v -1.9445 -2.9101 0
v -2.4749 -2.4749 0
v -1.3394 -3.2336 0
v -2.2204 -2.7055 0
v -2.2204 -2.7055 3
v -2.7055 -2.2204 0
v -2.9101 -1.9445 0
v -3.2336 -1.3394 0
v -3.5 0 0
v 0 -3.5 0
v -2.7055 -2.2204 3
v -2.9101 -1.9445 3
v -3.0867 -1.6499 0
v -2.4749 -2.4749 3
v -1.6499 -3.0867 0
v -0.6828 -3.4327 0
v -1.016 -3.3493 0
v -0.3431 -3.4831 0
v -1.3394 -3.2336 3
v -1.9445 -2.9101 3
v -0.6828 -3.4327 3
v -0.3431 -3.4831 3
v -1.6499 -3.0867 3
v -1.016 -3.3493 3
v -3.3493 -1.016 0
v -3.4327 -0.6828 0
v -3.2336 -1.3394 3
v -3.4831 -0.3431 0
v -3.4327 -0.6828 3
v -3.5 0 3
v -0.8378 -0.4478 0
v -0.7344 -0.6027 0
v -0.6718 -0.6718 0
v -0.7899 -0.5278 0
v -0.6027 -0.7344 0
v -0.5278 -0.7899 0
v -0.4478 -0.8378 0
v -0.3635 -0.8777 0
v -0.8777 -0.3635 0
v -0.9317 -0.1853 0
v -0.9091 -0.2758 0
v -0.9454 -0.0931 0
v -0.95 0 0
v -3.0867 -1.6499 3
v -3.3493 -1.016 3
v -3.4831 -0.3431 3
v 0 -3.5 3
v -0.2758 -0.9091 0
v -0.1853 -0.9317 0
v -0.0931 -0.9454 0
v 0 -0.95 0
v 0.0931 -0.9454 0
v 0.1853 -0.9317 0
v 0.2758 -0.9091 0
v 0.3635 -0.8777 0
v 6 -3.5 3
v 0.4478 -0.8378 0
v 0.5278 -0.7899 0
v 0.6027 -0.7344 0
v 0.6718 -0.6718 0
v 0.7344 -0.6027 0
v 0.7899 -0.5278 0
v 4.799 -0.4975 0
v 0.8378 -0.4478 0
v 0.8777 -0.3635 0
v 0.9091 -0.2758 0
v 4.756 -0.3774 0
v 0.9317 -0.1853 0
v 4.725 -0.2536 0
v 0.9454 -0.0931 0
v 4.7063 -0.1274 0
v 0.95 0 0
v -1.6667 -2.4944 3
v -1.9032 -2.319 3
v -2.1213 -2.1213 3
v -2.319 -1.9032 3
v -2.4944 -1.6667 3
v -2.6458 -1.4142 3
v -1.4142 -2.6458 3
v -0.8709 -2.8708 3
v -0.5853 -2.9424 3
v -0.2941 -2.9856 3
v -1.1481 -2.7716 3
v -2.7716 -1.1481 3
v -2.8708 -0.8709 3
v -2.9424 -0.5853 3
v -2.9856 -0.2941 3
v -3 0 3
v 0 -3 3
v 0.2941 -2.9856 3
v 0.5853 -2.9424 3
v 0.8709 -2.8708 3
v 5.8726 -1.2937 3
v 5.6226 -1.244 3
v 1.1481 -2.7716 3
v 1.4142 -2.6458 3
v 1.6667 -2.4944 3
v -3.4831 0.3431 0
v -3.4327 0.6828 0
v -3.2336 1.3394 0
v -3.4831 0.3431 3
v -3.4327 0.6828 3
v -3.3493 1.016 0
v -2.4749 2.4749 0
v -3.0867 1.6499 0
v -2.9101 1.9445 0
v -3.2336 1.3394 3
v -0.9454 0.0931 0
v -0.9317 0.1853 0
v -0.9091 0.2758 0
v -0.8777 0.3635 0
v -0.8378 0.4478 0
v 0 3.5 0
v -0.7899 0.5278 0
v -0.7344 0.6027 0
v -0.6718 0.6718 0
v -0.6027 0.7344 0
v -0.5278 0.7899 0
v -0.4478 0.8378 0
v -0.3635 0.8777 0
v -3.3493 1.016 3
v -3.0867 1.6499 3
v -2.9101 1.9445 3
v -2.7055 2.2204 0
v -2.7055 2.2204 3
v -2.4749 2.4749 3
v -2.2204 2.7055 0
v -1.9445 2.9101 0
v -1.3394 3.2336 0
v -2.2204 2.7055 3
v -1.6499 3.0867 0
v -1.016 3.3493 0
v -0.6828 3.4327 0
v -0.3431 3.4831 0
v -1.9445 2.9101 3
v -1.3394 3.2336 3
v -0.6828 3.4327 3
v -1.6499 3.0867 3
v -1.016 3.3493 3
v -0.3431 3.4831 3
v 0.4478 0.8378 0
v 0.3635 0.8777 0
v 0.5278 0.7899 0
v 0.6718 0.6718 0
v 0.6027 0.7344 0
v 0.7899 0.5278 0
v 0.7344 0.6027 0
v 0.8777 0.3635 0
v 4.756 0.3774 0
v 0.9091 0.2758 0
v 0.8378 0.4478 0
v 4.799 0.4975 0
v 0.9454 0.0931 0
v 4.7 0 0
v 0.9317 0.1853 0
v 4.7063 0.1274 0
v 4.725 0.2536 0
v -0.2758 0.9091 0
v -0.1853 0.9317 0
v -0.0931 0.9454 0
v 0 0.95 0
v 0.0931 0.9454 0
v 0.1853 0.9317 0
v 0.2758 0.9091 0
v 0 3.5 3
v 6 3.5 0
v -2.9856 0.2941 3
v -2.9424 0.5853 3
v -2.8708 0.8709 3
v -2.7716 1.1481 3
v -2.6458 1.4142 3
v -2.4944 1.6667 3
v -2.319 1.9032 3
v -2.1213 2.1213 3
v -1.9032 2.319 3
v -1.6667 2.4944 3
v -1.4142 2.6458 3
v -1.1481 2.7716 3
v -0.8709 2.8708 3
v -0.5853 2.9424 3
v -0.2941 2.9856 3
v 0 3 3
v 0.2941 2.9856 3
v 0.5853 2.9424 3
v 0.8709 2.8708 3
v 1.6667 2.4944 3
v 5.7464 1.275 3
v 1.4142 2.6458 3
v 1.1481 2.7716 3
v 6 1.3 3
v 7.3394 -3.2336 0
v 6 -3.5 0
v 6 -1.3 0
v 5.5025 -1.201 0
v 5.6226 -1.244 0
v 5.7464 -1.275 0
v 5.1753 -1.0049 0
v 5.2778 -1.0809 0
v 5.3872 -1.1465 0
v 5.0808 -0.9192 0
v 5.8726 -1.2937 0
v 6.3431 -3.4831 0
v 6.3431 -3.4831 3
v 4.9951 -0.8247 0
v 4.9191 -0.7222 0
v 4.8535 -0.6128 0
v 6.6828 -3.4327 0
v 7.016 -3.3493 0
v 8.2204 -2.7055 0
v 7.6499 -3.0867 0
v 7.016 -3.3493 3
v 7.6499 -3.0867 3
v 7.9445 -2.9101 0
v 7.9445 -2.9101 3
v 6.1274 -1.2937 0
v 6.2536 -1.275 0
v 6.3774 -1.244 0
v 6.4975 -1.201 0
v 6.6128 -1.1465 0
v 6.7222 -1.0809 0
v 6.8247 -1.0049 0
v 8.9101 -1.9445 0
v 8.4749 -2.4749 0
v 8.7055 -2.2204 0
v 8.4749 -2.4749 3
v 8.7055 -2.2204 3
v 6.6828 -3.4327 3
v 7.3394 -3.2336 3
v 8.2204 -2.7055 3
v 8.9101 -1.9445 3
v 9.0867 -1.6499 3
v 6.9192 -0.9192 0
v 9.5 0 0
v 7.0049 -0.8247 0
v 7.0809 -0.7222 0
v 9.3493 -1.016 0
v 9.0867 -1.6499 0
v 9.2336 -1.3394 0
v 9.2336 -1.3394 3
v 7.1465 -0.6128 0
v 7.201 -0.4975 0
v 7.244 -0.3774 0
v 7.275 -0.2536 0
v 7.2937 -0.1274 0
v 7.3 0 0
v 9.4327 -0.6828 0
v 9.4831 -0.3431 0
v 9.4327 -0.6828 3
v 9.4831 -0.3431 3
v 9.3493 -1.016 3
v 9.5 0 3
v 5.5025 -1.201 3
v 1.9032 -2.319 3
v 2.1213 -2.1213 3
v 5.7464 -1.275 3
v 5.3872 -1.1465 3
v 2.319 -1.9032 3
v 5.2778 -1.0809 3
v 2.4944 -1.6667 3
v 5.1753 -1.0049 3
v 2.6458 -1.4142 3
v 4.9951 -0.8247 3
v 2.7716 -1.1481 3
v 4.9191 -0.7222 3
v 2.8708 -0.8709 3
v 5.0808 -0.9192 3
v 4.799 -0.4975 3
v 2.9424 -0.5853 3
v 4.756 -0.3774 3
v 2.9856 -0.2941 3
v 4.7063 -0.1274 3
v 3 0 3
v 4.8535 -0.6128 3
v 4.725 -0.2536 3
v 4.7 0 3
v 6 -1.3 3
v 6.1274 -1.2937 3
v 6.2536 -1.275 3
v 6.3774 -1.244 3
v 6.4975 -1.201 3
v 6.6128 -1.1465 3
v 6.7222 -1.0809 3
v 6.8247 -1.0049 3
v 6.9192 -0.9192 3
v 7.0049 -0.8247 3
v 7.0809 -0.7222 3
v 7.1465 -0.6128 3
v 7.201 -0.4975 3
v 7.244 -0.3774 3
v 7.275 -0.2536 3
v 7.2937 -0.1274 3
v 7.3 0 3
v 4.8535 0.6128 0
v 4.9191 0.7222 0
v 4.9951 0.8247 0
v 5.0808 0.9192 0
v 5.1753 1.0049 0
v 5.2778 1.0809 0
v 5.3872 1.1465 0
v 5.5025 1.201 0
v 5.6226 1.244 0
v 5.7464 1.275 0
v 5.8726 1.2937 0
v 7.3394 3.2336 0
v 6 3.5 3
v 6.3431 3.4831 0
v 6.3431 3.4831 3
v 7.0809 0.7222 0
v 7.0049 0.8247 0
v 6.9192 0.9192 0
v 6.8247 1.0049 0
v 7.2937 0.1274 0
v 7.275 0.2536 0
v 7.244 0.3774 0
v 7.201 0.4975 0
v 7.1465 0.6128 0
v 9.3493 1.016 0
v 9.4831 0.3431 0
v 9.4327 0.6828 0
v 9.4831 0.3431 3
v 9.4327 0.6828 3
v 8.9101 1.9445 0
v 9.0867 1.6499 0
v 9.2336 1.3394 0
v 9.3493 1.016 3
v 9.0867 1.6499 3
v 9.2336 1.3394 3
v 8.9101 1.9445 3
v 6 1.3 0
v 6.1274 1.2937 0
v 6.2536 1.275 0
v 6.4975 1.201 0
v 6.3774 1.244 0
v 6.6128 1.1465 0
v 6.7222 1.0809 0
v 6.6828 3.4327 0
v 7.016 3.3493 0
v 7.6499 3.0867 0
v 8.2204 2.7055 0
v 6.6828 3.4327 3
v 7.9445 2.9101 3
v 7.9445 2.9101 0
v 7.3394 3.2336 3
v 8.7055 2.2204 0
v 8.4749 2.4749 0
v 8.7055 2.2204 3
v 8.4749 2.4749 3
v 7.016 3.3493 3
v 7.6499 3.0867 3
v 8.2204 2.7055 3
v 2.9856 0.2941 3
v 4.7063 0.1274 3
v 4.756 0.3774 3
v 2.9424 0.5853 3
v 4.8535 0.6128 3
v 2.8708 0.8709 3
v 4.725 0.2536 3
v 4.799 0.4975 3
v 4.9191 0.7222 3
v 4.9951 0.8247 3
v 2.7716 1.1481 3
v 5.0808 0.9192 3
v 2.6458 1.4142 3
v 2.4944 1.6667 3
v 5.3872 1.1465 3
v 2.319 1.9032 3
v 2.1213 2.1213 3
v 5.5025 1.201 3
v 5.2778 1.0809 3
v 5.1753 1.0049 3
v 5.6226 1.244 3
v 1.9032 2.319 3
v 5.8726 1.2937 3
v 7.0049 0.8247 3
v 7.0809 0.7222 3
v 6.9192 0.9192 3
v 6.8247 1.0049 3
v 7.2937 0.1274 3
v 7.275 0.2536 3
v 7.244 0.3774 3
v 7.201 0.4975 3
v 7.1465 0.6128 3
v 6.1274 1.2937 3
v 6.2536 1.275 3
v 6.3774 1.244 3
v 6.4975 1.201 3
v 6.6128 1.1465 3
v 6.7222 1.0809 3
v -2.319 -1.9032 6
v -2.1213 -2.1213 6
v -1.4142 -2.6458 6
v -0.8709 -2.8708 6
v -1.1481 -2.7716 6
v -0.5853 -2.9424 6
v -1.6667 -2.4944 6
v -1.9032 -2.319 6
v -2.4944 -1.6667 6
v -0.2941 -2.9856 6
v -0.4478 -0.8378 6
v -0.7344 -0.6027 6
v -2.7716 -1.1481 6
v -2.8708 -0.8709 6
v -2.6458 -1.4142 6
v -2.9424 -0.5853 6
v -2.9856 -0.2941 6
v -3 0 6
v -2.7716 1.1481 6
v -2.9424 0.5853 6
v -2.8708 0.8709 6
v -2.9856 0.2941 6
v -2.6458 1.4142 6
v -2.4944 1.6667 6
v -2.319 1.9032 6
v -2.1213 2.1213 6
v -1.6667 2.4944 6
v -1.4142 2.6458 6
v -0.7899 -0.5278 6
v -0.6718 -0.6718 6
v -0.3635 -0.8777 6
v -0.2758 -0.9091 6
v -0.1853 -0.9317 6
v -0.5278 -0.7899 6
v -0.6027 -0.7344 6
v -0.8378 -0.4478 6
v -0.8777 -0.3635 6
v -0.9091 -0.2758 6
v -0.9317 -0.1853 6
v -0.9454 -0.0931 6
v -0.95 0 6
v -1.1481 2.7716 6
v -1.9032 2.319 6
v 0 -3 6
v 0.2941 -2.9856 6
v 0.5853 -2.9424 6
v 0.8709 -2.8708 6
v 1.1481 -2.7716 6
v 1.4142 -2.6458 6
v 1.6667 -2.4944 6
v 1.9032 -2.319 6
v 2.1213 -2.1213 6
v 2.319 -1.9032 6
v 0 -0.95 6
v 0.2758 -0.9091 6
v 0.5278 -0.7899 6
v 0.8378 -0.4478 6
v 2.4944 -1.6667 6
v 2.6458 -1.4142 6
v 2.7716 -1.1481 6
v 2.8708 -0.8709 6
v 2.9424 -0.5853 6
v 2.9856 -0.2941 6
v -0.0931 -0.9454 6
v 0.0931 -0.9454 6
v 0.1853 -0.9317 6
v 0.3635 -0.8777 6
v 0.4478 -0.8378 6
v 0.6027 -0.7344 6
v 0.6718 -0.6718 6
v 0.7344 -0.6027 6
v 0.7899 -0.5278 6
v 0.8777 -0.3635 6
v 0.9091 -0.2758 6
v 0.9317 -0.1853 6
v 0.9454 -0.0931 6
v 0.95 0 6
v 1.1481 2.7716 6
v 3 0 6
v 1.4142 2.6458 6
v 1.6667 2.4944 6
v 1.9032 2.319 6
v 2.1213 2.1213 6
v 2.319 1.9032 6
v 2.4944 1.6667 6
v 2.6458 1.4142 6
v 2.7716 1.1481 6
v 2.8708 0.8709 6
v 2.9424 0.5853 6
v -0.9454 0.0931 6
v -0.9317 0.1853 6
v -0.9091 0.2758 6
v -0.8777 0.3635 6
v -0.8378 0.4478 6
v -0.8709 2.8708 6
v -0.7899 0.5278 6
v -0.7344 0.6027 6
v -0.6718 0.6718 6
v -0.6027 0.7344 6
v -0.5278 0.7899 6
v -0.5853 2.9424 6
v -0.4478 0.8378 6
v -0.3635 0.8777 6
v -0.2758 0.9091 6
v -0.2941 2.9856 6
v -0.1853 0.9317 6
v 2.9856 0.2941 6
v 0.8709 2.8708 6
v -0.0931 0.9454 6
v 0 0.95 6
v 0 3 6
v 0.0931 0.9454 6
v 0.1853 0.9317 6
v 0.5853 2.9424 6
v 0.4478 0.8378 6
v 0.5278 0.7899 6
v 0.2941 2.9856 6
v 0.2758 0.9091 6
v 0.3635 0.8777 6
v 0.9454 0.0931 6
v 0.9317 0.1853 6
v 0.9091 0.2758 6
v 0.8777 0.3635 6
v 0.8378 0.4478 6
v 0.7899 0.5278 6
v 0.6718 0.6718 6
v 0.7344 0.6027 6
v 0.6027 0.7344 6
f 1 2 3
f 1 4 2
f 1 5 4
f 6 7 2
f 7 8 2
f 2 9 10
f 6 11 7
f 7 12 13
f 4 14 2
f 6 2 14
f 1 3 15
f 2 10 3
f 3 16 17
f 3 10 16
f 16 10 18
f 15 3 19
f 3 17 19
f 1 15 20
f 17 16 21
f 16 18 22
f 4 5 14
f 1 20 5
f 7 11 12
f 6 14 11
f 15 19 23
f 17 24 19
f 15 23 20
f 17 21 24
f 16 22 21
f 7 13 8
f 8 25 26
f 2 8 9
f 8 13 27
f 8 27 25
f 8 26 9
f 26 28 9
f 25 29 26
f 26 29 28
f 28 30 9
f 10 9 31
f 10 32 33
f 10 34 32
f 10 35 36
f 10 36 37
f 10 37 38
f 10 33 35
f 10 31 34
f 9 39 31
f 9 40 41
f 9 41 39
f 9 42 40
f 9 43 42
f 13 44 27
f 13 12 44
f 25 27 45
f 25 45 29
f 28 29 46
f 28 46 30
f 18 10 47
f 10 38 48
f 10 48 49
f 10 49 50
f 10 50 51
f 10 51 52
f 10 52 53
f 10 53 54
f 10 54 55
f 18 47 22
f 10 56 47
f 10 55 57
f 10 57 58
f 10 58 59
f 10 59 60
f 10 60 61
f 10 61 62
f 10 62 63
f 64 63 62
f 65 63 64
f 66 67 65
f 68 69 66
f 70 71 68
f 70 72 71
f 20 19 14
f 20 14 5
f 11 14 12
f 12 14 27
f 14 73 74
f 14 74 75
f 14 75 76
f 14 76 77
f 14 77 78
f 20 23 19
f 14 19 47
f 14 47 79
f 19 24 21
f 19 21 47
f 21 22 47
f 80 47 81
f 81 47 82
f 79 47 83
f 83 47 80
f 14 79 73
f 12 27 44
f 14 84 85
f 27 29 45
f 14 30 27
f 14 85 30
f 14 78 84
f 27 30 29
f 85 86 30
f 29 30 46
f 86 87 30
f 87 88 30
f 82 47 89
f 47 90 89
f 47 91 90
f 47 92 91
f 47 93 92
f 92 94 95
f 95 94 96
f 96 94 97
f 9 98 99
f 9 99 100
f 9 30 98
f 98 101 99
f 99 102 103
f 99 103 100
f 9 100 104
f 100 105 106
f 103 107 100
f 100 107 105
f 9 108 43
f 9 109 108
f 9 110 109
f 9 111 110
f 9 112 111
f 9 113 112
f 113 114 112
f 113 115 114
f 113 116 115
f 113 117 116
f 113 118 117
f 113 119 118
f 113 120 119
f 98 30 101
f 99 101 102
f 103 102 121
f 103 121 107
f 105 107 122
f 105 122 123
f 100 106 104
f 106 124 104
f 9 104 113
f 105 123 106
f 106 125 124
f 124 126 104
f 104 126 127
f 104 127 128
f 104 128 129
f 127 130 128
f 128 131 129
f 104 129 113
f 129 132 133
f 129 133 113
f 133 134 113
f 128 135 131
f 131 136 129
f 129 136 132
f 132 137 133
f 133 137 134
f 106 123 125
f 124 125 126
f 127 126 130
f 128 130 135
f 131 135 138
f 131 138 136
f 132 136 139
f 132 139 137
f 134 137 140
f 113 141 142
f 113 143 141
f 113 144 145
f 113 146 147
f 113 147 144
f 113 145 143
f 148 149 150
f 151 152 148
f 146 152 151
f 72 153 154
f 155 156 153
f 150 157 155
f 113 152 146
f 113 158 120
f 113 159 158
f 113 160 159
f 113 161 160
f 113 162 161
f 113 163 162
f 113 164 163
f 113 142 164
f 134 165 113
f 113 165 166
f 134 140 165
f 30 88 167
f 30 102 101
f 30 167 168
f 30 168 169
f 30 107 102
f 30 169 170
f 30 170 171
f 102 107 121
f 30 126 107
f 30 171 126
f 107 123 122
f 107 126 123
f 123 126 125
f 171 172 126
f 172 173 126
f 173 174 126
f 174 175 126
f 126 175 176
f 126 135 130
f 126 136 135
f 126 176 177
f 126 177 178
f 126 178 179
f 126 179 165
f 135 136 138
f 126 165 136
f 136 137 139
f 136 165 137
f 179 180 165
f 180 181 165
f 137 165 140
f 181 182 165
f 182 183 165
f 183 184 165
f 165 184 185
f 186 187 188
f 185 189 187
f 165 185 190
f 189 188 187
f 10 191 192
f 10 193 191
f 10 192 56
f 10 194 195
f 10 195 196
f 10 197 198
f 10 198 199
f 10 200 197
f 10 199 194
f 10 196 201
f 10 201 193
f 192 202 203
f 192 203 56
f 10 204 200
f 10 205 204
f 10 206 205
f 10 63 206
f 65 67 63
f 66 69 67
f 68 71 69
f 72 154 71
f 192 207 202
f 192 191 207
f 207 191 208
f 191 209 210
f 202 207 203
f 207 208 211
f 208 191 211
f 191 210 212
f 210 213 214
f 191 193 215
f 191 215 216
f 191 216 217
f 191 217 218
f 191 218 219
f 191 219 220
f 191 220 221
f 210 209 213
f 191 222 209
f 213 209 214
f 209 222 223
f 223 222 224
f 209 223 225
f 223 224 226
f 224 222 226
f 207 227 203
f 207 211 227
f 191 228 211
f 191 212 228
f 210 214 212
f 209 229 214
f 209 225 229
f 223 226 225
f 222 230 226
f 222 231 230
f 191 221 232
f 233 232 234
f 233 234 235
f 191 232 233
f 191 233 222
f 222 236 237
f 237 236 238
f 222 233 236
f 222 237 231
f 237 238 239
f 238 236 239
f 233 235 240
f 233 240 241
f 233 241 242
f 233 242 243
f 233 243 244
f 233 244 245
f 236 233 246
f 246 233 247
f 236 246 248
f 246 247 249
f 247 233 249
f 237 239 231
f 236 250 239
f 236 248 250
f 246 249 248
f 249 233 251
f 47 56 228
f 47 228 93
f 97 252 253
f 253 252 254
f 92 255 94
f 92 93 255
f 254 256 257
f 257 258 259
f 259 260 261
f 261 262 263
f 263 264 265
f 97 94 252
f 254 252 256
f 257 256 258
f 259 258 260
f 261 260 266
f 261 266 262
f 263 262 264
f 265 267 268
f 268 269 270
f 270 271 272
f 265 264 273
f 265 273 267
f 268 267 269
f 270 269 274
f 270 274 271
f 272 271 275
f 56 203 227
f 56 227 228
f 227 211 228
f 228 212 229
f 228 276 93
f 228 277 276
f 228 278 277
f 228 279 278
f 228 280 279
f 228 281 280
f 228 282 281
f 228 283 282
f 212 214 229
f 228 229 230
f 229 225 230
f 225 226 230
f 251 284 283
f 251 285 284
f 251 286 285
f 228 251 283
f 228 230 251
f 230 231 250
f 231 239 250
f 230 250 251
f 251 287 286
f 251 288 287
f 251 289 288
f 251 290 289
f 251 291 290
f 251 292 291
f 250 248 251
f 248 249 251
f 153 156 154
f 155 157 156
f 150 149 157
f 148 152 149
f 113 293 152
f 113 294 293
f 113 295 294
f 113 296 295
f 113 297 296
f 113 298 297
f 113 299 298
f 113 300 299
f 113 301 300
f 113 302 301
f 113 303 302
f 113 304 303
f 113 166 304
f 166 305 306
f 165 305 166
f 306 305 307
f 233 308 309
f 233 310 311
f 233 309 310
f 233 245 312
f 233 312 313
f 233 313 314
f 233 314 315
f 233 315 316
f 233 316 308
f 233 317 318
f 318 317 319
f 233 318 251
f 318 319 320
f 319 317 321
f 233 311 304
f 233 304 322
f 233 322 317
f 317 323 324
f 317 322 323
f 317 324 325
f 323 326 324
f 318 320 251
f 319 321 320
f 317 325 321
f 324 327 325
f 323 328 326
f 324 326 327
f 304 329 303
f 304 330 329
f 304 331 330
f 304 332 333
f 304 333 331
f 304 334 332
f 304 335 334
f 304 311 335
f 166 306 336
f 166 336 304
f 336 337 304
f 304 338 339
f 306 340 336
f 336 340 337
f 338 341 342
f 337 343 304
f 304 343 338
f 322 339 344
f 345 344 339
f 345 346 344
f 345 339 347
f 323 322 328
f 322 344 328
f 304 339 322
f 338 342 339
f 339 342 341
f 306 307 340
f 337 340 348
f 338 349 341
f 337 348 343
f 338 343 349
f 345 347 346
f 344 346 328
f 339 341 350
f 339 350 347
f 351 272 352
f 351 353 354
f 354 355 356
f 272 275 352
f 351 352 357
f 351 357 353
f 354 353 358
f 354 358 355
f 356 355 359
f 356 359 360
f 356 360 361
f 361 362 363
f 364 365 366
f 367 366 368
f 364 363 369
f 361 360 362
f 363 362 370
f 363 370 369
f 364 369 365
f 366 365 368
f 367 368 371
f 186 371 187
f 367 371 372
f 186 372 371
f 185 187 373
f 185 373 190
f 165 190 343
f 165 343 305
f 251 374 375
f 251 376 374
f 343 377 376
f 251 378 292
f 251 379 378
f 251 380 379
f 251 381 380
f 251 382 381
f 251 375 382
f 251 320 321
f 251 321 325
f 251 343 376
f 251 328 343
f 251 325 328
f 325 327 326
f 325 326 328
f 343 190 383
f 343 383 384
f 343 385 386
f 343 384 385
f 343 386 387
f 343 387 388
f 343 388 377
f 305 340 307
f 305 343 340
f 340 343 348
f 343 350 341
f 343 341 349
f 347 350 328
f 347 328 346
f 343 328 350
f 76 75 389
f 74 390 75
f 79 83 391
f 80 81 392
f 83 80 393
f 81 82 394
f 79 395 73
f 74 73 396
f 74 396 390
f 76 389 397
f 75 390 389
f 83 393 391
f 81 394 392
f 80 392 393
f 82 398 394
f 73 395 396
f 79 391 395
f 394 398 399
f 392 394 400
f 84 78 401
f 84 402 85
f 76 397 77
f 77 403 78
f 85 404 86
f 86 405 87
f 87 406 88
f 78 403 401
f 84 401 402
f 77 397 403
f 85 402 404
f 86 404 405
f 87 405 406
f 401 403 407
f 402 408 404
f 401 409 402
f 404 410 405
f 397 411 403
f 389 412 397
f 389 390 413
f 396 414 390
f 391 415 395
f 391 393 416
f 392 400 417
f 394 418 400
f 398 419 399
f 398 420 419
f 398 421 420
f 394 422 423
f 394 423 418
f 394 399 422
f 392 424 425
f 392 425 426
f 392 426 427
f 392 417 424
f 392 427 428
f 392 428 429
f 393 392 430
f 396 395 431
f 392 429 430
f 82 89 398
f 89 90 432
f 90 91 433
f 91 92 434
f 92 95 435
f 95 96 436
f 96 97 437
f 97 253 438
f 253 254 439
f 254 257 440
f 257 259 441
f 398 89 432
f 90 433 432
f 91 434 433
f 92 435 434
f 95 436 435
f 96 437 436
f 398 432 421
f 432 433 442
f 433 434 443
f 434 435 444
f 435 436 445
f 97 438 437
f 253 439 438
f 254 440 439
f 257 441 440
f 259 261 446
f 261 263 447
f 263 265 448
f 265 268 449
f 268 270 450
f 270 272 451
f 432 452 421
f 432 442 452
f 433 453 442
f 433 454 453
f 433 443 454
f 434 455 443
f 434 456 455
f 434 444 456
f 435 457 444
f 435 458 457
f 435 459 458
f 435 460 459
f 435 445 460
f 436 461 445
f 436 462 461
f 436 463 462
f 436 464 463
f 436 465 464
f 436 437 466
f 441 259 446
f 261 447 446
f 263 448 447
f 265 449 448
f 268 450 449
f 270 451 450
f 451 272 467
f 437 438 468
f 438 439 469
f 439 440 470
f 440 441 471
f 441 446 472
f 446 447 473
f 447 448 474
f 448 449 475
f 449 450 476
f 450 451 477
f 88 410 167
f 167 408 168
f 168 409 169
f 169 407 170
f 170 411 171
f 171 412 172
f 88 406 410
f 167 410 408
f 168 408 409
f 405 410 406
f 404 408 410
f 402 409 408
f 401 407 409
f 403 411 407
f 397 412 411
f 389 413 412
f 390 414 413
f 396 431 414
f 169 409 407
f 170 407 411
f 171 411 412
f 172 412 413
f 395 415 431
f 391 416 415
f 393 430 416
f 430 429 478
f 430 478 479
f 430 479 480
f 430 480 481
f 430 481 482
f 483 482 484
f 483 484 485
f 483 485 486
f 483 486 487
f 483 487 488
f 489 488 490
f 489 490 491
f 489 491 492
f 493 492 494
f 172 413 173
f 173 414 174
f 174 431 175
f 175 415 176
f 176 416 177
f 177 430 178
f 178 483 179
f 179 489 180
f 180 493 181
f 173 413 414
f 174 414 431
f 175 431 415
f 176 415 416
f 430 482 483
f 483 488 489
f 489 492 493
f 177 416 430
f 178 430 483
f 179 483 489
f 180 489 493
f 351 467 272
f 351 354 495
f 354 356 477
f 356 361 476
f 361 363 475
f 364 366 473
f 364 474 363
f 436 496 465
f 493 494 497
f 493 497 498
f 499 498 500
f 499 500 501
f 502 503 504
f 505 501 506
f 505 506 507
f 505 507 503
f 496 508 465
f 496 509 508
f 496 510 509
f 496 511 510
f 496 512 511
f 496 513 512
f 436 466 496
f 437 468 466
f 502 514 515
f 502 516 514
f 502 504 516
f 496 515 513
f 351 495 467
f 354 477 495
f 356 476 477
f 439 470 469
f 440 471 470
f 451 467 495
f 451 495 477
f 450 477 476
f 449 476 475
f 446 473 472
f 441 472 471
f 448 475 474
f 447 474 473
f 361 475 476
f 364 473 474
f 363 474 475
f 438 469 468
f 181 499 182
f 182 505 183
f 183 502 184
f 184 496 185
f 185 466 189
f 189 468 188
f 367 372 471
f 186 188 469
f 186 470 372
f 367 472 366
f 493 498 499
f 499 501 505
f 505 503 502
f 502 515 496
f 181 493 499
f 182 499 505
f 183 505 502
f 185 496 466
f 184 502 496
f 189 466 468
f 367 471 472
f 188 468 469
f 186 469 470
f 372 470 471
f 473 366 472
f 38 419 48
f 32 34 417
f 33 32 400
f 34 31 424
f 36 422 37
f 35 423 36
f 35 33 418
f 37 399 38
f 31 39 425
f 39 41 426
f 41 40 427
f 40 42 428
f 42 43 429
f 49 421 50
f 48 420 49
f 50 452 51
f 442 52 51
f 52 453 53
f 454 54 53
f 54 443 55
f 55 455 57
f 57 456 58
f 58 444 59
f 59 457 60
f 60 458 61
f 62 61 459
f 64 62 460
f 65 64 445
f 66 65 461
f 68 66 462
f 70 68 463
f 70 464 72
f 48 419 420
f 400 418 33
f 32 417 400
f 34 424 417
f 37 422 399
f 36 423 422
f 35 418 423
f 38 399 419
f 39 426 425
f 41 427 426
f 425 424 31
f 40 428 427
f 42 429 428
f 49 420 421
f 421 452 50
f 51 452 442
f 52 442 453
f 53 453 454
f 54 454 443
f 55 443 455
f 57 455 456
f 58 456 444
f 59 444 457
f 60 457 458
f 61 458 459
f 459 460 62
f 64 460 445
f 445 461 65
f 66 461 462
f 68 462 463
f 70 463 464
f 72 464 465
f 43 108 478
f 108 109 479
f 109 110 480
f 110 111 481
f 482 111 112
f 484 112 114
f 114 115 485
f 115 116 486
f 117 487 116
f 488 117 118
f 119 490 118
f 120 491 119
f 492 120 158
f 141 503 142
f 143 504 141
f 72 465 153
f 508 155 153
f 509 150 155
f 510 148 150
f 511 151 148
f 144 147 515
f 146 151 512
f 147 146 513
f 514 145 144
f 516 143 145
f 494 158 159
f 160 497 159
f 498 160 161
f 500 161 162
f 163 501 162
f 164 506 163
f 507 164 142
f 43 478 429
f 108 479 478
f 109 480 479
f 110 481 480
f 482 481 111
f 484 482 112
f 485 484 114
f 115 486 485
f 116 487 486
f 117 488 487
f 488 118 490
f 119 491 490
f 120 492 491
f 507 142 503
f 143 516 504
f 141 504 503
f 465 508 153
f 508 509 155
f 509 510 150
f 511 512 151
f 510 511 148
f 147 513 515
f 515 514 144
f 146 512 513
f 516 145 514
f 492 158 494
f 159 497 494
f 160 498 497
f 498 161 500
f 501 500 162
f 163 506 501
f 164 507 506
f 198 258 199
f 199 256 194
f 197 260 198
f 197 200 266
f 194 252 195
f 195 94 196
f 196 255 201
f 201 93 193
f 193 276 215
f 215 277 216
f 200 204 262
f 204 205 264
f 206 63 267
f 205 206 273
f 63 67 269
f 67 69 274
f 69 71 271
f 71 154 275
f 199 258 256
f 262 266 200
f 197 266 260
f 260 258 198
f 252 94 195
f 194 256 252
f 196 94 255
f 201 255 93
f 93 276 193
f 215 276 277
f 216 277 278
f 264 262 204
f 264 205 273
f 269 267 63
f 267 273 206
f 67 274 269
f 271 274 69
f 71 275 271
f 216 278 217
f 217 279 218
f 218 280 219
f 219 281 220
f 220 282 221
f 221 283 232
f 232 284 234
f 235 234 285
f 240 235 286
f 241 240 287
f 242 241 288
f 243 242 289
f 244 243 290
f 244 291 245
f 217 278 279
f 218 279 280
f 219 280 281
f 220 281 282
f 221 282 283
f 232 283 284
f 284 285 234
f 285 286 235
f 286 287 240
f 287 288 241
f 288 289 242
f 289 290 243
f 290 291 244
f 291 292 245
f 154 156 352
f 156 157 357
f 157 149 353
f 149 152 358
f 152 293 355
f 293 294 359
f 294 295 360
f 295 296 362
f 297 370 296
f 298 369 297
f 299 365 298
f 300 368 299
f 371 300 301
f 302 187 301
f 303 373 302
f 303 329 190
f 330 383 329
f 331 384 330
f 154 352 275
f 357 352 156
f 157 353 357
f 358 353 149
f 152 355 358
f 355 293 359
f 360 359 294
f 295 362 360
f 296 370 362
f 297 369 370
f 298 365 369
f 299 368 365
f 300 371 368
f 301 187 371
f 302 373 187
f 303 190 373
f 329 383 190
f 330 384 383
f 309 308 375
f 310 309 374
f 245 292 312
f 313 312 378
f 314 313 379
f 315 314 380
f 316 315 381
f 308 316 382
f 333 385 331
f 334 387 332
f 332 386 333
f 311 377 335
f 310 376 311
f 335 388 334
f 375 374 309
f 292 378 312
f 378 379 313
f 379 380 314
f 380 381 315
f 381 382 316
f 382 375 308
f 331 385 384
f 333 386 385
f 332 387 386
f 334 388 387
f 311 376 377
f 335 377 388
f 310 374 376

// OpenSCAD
// Excentr pro vibrobota (karta 05): nalisuje se na hřídel 2 mm motoru z Dratek.cz,
// do ramene se zašroubuje šroubek M3 (samořezně do plastu), případně s maticemi jako závažím.
// Tisk naležato (hřídel svisle), bez podpěr. Export: openscad -D 'dil="excentr"' -o excentr.stl excentr.scad

dil = "excentr";        // "excentr" nebo "zkouska" (destička s otvory na vyzkoušení lisování)

hridel_d   = 1.9;       // otvor pro hřídel 2 mm; přesnou hodnotu vybrat podle zkušební destičky
naboj_d    = 6;         // vnější průměr náboje
naboj_h    = 6;         // délka náboje (kolik se nasune na hřídel)
rameno_t   = 3;         // tloušťka ramene
rameno_w   = 7;         // šířka ramene
sroub_r    = 6;         // vzdálenost šroubku od osy = jak moc „excentrický“
sroub_d    = 2.6;       // otvor pro samořezný M3 do PLA/PETG

zkouska_d  = [1.7, 1.8, 1.9, 2.0, 2.1];

$fn = 64;

module excentr() {
    difference() {
        union() {
            cylinder(d = naboj_d, h = naboj_h);
            hull() {
                cylinder(d = rameno_w, h = rameno_t);
                translate([sroub_r, 0, 0]) cylinder(d = rameno_w, h = rameno_t);
            }
        }
        translate([0, 0, -1]) cylinder(d = hridel_d, h = naboj_h + 2);
        translate([sroub_r, 0, -1]) cylinder(d = sroub_d, h = rameno_t + 2);
    }
}

module zkouska() {
    krok = 9;
    difference() {
        union() {
            translate([-krok / 2, -6, 0]) cube([krok * len(zkouska_d), 12, 2]);
            for (i = [0 : len(zkouska_d) - 1])
                translate([i * krok, 2, 0]) cylinder(d = naboj_d, h = naboj_h);
        }
        for (i = [0 : len(zkouska_d) - 1]) {
            translate([i * krok, 2, -1]) cylinder(d = zkouska_d[i], h = naboj_h + 2);
            translate([i * krok, -4, 1.4])
                linear_extrude(1) text(str(zkouska_d[i]), size = 2.2, halign = "center", valign = "center");
        }
    }
}

if (dil == "zkouska") zkouska(); else excentr();
